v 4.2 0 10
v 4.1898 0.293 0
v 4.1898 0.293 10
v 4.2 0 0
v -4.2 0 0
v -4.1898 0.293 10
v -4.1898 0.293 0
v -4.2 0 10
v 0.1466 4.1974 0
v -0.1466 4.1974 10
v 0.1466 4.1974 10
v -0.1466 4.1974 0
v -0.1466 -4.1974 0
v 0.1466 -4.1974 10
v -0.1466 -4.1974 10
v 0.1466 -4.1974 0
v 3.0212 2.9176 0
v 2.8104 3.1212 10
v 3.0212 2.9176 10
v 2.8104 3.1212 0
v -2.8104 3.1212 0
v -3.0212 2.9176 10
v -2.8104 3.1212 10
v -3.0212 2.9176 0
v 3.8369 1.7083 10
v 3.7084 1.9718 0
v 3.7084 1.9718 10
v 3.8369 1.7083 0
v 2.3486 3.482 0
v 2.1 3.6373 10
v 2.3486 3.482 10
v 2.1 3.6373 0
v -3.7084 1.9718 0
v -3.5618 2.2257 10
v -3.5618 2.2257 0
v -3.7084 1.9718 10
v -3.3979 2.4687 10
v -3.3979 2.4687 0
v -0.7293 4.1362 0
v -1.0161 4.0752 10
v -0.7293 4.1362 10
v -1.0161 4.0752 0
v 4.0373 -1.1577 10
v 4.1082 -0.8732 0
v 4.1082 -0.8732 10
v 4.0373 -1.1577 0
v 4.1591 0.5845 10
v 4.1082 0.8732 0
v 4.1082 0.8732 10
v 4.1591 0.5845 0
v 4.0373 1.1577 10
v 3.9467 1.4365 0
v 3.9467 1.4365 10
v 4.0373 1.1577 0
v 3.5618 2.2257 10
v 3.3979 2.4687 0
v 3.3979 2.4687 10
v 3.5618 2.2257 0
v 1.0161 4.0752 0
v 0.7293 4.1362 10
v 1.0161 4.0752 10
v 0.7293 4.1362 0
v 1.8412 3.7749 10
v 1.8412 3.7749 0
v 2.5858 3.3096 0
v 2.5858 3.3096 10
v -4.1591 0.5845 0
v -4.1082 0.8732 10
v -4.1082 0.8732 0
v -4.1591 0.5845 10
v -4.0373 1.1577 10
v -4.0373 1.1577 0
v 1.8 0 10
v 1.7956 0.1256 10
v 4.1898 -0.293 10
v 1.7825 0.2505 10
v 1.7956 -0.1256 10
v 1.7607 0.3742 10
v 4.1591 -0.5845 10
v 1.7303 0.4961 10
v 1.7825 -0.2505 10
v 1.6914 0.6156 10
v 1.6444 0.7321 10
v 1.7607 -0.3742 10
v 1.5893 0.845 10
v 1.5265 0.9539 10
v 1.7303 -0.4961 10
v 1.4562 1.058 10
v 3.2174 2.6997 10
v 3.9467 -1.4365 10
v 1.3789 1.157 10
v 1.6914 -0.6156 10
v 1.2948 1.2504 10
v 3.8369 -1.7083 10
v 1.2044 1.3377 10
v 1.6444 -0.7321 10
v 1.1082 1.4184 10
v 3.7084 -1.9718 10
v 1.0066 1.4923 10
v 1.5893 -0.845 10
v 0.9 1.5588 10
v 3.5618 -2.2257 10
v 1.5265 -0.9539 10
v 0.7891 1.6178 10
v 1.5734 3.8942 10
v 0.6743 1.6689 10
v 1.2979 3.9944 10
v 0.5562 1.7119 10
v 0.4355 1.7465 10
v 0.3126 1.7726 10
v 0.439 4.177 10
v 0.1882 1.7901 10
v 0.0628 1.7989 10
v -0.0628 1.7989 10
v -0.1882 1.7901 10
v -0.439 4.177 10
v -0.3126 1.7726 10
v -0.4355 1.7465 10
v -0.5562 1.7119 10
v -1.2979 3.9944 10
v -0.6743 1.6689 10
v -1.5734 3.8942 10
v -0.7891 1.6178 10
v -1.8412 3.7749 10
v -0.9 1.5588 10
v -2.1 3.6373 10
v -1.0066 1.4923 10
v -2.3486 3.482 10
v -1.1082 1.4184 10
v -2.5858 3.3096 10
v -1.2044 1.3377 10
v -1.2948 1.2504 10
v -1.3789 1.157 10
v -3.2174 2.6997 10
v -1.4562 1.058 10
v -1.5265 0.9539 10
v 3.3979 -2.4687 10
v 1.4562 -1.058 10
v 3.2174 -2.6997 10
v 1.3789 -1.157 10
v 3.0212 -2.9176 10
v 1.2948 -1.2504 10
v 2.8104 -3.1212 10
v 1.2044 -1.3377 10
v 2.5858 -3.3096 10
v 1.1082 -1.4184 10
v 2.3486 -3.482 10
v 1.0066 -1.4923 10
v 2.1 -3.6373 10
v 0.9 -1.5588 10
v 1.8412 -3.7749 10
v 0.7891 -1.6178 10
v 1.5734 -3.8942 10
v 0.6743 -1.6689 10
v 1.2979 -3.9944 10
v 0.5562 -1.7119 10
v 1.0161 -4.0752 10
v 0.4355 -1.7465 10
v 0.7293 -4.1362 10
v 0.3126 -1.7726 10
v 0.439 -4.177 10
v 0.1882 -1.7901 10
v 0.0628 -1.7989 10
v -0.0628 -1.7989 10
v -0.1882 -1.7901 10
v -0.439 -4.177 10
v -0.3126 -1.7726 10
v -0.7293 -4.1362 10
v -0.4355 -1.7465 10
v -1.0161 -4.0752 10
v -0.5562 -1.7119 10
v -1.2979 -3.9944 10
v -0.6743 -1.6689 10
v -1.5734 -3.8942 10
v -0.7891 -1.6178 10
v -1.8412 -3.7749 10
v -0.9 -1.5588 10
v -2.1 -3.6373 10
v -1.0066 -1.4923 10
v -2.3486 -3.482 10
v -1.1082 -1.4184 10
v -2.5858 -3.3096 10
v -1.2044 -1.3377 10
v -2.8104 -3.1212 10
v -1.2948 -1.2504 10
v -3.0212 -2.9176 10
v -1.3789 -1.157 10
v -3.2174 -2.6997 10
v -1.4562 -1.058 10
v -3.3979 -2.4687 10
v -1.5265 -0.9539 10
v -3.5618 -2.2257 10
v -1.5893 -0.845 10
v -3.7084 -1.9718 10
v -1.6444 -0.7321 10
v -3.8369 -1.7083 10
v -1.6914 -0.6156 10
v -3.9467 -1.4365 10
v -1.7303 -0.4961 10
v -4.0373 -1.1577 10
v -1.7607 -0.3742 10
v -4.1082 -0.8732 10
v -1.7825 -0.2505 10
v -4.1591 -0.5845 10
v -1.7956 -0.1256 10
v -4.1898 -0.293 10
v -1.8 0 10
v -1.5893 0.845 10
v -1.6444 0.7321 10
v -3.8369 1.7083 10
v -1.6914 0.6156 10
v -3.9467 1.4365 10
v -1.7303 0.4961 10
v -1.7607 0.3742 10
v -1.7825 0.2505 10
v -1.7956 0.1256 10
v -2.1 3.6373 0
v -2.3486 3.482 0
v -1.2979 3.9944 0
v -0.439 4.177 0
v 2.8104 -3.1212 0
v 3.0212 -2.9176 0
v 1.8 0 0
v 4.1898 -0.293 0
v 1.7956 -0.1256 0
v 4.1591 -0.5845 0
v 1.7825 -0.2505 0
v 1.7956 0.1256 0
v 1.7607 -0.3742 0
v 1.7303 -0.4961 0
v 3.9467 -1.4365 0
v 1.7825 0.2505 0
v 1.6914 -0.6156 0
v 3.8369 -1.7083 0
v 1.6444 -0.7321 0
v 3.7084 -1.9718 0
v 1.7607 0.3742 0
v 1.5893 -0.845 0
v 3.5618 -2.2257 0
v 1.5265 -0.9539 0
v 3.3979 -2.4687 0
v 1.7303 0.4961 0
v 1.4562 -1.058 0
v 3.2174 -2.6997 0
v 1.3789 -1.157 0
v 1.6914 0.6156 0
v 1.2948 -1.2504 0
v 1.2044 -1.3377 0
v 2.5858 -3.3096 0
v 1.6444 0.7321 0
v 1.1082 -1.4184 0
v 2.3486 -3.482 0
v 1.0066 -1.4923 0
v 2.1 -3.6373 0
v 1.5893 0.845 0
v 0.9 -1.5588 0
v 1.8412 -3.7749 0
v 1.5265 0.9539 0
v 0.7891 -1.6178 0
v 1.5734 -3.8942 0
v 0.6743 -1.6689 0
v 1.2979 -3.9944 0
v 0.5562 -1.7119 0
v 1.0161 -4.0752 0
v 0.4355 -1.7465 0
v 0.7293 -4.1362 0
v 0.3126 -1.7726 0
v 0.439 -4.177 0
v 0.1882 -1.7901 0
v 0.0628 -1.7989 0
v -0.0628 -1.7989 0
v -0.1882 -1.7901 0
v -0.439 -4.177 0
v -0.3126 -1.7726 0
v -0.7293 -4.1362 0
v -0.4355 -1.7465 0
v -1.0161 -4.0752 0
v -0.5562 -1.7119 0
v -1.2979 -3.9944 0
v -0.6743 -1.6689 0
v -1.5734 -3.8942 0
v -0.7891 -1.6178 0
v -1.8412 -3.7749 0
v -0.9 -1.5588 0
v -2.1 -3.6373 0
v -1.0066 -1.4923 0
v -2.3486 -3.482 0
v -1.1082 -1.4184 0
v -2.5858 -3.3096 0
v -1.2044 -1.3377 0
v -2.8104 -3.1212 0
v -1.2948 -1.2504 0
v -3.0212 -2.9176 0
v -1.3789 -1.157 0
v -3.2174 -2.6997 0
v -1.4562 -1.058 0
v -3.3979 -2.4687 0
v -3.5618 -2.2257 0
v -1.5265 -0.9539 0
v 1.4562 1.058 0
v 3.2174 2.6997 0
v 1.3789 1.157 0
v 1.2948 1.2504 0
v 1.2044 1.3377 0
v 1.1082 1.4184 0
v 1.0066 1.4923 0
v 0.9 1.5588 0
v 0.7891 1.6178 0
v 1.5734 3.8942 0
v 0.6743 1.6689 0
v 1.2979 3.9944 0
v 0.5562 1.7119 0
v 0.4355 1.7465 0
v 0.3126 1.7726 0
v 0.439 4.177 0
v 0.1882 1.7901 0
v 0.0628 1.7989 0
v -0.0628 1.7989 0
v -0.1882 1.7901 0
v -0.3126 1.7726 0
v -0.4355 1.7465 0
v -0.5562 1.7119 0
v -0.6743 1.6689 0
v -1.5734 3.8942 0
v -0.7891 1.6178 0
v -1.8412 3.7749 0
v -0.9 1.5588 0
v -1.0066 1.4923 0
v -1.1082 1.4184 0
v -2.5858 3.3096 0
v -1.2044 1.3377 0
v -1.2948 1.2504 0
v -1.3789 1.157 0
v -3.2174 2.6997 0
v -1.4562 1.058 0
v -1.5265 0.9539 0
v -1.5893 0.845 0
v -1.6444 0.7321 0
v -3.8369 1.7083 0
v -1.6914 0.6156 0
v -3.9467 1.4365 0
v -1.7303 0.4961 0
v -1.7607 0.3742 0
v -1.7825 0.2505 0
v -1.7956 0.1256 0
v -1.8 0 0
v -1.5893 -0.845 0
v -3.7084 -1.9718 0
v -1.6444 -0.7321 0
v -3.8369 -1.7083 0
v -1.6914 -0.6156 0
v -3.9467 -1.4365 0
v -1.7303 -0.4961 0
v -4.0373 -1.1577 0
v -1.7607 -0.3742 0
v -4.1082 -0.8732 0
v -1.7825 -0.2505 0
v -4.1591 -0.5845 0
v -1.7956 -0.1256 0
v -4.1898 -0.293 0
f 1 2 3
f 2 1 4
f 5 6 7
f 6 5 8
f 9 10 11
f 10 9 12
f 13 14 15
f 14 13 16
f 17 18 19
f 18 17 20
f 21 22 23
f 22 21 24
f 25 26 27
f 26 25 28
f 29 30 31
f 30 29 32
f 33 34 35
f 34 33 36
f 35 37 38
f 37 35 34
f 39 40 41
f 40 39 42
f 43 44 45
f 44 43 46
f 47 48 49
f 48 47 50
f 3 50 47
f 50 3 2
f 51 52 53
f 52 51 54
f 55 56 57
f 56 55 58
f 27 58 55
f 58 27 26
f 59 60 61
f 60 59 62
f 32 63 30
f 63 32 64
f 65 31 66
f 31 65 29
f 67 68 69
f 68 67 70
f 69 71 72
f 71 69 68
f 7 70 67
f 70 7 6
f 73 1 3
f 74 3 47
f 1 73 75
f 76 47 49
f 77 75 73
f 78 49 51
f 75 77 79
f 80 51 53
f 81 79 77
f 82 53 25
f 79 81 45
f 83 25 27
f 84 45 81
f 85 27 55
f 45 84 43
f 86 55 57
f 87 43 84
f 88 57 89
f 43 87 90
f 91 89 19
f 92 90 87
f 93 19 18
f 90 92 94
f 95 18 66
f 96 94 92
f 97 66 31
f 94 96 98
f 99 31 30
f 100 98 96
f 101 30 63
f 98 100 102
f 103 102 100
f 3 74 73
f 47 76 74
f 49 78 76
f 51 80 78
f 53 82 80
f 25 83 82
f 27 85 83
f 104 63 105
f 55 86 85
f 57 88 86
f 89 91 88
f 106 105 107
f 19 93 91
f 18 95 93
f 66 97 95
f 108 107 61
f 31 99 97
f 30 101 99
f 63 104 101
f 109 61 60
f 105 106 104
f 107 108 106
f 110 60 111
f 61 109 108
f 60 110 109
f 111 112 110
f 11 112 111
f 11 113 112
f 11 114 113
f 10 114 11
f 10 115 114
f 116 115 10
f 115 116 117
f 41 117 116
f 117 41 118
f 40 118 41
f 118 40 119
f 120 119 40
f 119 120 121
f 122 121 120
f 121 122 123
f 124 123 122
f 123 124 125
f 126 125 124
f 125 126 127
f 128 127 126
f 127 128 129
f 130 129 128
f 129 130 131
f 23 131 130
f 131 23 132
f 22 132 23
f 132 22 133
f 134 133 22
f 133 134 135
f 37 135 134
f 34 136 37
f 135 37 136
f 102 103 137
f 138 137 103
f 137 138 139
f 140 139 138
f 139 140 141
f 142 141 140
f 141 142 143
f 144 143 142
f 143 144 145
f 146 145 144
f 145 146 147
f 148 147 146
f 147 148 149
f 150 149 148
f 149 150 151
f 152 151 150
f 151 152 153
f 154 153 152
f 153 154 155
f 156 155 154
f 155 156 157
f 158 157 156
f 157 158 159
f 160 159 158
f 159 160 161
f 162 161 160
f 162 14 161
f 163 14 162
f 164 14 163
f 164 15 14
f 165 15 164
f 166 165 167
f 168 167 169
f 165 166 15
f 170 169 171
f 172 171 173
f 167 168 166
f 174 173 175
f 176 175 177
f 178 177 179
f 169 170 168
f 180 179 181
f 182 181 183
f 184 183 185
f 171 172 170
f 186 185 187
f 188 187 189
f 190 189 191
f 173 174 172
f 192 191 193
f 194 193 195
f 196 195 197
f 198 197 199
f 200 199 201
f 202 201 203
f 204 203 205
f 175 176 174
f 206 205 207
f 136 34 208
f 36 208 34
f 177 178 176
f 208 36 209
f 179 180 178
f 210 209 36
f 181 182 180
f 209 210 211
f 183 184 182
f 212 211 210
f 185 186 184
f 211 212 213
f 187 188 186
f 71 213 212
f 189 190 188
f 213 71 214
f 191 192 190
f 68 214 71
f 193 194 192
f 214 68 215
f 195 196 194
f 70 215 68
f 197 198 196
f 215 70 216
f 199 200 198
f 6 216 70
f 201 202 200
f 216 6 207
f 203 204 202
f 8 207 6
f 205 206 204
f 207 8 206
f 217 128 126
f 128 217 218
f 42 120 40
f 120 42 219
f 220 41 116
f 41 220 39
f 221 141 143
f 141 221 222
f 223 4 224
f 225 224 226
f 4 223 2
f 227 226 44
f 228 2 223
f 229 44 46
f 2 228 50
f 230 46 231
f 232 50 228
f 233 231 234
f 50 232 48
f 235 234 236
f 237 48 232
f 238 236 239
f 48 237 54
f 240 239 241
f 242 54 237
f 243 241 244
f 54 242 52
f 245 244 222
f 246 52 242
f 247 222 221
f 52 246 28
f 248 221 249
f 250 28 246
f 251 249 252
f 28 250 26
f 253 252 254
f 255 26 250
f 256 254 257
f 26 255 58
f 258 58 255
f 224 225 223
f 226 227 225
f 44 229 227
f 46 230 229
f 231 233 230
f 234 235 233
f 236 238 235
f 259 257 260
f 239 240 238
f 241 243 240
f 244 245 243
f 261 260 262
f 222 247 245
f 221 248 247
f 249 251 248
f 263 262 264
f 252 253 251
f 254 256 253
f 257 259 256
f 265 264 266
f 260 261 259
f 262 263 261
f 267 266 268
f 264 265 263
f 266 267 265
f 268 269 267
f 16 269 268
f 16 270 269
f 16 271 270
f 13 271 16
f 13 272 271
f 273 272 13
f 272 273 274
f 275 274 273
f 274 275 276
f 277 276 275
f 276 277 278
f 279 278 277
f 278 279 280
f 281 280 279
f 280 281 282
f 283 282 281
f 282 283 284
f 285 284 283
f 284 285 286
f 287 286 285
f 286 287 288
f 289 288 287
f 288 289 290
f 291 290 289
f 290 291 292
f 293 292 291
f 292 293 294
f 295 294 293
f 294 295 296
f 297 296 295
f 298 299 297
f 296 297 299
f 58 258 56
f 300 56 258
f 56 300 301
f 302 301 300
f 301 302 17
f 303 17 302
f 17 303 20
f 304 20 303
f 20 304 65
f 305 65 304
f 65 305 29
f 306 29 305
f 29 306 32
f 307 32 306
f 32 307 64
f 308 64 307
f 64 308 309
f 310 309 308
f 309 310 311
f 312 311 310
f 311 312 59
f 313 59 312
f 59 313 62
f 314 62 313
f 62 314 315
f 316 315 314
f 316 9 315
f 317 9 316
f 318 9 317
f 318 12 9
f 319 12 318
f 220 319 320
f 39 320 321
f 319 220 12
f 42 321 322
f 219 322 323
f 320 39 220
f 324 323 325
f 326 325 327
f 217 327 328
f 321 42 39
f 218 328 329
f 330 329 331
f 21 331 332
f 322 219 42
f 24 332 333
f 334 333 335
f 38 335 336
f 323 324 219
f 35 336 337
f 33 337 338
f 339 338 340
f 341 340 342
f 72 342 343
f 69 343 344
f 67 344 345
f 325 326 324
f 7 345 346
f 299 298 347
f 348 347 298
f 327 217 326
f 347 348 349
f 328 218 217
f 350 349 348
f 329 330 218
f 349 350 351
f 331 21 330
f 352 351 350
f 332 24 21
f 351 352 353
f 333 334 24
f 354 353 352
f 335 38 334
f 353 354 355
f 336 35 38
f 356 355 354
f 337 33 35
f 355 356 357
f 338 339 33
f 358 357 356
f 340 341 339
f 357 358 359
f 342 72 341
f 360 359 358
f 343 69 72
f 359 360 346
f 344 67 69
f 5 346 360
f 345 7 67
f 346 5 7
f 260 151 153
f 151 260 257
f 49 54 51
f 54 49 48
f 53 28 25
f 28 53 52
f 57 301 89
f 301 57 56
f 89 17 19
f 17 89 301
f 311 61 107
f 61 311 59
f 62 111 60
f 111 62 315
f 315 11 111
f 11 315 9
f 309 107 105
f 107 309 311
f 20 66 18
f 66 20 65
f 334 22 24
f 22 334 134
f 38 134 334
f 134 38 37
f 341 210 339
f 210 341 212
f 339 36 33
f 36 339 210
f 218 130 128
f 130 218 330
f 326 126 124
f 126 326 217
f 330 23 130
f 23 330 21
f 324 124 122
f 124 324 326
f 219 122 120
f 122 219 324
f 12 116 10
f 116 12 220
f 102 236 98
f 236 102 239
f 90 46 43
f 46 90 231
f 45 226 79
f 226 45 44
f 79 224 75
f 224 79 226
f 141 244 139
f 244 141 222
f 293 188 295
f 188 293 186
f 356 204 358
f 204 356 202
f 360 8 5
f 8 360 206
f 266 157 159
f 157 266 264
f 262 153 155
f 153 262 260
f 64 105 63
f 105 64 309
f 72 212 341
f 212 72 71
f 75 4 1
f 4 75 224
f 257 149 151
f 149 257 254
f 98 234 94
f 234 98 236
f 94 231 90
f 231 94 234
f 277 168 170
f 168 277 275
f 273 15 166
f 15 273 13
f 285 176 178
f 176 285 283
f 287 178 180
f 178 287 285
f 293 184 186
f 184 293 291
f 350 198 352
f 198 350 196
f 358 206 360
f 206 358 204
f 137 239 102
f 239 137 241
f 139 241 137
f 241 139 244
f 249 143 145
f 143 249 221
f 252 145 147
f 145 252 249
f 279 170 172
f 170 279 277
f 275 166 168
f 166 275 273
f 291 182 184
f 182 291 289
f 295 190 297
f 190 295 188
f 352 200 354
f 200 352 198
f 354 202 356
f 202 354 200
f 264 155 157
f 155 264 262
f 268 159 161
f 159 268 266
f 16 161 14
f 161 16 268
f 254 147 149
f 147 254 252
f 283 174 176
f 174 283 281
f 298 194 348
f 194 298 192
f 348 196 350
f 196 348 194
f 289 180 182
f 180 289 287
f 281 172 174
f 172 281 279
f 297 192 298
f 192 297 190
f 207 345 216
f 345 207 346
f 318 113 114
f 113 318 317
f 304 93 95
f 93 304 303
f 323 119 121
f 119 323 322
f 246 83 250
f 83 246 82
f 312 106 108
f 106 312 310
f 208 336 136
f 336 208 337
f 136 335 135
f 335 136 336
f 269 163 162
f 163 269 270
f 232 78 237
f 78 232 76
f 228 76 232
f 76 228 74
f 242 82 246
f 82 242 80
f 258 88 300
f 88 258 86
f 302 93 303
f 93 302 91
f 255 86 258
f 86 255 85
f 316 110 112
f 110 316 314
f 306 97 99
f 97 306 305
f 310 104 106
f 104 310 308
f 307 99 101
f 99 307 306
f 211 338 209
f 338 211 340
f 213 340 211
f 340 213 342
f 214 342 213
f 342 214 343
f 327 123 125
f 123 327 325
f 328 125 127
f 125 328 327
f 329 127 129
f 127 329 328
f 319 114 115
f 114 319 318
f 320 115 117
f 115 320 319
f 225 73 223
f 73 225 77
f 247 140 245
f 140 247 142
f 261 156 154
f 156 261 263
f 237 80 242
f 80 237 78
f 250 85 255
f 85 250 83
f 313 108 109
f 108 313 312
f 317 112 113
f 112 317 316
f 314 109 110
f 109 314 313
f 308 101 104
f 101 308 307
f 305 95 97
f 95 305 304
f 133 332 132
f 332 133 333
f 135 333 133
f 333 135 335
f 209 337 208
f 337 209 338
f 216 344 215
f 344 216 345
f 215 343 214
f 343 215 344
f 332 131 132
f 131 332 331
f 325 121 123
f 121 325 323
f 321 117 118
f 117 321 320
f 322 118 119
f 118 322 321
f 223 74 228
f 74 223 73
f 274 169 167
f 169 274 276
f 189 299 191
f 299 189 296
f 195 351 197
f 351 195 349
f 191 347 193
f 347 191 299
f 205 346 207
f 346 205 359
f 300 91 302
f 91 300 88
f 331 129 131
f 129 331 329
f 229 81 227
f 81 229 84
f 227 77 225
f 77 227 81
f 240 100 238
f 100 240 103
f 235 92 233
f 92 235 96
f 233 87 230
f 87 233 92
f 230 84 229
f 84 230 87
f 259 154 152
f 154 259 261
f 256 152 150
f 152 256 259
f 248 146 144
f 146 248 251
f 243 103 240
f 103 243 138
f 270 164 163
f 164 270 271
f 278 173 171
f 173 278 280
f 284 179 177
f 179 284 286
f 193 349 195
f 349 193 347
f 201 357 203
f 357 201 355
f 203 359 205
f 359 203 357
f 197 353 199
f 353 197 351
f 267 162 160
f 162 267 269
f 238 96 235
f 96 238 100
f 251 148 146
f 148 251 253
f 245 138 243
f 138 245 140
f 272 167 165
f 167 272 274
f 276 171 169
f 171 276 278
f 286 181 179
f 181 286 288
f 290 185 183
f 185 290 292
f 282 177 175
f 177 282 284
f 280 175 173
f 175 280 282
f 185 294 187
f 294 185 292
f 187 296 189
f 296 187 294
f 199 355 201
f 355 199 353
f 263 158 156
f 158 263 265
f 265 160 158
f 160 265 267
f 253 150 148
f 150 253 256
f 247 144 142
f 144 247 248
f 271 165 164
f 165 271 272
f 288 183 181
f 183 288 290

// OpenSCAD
// -*- mode: SCAD ; c-file-style: "ellemtel" ; coding: utf-8 -*-
//
// Buchse für M3, grob, 10 mm
//
// © 2017 Roland Sieker <ospalh@gmail.com>
// Licence: CC-0 4.0

d_i = 3.6;
r_i = d_i/2;
h = 10;
w = 2.4;
ms = 0.1;  // Muggeseggele

$fn=90;

difference()
{
    cylinder(r=r_i+w, h=h);
    translate([0,0,-ms])
    {
        cylinder(r=r_i, h=h+2*ms);
    }
}
